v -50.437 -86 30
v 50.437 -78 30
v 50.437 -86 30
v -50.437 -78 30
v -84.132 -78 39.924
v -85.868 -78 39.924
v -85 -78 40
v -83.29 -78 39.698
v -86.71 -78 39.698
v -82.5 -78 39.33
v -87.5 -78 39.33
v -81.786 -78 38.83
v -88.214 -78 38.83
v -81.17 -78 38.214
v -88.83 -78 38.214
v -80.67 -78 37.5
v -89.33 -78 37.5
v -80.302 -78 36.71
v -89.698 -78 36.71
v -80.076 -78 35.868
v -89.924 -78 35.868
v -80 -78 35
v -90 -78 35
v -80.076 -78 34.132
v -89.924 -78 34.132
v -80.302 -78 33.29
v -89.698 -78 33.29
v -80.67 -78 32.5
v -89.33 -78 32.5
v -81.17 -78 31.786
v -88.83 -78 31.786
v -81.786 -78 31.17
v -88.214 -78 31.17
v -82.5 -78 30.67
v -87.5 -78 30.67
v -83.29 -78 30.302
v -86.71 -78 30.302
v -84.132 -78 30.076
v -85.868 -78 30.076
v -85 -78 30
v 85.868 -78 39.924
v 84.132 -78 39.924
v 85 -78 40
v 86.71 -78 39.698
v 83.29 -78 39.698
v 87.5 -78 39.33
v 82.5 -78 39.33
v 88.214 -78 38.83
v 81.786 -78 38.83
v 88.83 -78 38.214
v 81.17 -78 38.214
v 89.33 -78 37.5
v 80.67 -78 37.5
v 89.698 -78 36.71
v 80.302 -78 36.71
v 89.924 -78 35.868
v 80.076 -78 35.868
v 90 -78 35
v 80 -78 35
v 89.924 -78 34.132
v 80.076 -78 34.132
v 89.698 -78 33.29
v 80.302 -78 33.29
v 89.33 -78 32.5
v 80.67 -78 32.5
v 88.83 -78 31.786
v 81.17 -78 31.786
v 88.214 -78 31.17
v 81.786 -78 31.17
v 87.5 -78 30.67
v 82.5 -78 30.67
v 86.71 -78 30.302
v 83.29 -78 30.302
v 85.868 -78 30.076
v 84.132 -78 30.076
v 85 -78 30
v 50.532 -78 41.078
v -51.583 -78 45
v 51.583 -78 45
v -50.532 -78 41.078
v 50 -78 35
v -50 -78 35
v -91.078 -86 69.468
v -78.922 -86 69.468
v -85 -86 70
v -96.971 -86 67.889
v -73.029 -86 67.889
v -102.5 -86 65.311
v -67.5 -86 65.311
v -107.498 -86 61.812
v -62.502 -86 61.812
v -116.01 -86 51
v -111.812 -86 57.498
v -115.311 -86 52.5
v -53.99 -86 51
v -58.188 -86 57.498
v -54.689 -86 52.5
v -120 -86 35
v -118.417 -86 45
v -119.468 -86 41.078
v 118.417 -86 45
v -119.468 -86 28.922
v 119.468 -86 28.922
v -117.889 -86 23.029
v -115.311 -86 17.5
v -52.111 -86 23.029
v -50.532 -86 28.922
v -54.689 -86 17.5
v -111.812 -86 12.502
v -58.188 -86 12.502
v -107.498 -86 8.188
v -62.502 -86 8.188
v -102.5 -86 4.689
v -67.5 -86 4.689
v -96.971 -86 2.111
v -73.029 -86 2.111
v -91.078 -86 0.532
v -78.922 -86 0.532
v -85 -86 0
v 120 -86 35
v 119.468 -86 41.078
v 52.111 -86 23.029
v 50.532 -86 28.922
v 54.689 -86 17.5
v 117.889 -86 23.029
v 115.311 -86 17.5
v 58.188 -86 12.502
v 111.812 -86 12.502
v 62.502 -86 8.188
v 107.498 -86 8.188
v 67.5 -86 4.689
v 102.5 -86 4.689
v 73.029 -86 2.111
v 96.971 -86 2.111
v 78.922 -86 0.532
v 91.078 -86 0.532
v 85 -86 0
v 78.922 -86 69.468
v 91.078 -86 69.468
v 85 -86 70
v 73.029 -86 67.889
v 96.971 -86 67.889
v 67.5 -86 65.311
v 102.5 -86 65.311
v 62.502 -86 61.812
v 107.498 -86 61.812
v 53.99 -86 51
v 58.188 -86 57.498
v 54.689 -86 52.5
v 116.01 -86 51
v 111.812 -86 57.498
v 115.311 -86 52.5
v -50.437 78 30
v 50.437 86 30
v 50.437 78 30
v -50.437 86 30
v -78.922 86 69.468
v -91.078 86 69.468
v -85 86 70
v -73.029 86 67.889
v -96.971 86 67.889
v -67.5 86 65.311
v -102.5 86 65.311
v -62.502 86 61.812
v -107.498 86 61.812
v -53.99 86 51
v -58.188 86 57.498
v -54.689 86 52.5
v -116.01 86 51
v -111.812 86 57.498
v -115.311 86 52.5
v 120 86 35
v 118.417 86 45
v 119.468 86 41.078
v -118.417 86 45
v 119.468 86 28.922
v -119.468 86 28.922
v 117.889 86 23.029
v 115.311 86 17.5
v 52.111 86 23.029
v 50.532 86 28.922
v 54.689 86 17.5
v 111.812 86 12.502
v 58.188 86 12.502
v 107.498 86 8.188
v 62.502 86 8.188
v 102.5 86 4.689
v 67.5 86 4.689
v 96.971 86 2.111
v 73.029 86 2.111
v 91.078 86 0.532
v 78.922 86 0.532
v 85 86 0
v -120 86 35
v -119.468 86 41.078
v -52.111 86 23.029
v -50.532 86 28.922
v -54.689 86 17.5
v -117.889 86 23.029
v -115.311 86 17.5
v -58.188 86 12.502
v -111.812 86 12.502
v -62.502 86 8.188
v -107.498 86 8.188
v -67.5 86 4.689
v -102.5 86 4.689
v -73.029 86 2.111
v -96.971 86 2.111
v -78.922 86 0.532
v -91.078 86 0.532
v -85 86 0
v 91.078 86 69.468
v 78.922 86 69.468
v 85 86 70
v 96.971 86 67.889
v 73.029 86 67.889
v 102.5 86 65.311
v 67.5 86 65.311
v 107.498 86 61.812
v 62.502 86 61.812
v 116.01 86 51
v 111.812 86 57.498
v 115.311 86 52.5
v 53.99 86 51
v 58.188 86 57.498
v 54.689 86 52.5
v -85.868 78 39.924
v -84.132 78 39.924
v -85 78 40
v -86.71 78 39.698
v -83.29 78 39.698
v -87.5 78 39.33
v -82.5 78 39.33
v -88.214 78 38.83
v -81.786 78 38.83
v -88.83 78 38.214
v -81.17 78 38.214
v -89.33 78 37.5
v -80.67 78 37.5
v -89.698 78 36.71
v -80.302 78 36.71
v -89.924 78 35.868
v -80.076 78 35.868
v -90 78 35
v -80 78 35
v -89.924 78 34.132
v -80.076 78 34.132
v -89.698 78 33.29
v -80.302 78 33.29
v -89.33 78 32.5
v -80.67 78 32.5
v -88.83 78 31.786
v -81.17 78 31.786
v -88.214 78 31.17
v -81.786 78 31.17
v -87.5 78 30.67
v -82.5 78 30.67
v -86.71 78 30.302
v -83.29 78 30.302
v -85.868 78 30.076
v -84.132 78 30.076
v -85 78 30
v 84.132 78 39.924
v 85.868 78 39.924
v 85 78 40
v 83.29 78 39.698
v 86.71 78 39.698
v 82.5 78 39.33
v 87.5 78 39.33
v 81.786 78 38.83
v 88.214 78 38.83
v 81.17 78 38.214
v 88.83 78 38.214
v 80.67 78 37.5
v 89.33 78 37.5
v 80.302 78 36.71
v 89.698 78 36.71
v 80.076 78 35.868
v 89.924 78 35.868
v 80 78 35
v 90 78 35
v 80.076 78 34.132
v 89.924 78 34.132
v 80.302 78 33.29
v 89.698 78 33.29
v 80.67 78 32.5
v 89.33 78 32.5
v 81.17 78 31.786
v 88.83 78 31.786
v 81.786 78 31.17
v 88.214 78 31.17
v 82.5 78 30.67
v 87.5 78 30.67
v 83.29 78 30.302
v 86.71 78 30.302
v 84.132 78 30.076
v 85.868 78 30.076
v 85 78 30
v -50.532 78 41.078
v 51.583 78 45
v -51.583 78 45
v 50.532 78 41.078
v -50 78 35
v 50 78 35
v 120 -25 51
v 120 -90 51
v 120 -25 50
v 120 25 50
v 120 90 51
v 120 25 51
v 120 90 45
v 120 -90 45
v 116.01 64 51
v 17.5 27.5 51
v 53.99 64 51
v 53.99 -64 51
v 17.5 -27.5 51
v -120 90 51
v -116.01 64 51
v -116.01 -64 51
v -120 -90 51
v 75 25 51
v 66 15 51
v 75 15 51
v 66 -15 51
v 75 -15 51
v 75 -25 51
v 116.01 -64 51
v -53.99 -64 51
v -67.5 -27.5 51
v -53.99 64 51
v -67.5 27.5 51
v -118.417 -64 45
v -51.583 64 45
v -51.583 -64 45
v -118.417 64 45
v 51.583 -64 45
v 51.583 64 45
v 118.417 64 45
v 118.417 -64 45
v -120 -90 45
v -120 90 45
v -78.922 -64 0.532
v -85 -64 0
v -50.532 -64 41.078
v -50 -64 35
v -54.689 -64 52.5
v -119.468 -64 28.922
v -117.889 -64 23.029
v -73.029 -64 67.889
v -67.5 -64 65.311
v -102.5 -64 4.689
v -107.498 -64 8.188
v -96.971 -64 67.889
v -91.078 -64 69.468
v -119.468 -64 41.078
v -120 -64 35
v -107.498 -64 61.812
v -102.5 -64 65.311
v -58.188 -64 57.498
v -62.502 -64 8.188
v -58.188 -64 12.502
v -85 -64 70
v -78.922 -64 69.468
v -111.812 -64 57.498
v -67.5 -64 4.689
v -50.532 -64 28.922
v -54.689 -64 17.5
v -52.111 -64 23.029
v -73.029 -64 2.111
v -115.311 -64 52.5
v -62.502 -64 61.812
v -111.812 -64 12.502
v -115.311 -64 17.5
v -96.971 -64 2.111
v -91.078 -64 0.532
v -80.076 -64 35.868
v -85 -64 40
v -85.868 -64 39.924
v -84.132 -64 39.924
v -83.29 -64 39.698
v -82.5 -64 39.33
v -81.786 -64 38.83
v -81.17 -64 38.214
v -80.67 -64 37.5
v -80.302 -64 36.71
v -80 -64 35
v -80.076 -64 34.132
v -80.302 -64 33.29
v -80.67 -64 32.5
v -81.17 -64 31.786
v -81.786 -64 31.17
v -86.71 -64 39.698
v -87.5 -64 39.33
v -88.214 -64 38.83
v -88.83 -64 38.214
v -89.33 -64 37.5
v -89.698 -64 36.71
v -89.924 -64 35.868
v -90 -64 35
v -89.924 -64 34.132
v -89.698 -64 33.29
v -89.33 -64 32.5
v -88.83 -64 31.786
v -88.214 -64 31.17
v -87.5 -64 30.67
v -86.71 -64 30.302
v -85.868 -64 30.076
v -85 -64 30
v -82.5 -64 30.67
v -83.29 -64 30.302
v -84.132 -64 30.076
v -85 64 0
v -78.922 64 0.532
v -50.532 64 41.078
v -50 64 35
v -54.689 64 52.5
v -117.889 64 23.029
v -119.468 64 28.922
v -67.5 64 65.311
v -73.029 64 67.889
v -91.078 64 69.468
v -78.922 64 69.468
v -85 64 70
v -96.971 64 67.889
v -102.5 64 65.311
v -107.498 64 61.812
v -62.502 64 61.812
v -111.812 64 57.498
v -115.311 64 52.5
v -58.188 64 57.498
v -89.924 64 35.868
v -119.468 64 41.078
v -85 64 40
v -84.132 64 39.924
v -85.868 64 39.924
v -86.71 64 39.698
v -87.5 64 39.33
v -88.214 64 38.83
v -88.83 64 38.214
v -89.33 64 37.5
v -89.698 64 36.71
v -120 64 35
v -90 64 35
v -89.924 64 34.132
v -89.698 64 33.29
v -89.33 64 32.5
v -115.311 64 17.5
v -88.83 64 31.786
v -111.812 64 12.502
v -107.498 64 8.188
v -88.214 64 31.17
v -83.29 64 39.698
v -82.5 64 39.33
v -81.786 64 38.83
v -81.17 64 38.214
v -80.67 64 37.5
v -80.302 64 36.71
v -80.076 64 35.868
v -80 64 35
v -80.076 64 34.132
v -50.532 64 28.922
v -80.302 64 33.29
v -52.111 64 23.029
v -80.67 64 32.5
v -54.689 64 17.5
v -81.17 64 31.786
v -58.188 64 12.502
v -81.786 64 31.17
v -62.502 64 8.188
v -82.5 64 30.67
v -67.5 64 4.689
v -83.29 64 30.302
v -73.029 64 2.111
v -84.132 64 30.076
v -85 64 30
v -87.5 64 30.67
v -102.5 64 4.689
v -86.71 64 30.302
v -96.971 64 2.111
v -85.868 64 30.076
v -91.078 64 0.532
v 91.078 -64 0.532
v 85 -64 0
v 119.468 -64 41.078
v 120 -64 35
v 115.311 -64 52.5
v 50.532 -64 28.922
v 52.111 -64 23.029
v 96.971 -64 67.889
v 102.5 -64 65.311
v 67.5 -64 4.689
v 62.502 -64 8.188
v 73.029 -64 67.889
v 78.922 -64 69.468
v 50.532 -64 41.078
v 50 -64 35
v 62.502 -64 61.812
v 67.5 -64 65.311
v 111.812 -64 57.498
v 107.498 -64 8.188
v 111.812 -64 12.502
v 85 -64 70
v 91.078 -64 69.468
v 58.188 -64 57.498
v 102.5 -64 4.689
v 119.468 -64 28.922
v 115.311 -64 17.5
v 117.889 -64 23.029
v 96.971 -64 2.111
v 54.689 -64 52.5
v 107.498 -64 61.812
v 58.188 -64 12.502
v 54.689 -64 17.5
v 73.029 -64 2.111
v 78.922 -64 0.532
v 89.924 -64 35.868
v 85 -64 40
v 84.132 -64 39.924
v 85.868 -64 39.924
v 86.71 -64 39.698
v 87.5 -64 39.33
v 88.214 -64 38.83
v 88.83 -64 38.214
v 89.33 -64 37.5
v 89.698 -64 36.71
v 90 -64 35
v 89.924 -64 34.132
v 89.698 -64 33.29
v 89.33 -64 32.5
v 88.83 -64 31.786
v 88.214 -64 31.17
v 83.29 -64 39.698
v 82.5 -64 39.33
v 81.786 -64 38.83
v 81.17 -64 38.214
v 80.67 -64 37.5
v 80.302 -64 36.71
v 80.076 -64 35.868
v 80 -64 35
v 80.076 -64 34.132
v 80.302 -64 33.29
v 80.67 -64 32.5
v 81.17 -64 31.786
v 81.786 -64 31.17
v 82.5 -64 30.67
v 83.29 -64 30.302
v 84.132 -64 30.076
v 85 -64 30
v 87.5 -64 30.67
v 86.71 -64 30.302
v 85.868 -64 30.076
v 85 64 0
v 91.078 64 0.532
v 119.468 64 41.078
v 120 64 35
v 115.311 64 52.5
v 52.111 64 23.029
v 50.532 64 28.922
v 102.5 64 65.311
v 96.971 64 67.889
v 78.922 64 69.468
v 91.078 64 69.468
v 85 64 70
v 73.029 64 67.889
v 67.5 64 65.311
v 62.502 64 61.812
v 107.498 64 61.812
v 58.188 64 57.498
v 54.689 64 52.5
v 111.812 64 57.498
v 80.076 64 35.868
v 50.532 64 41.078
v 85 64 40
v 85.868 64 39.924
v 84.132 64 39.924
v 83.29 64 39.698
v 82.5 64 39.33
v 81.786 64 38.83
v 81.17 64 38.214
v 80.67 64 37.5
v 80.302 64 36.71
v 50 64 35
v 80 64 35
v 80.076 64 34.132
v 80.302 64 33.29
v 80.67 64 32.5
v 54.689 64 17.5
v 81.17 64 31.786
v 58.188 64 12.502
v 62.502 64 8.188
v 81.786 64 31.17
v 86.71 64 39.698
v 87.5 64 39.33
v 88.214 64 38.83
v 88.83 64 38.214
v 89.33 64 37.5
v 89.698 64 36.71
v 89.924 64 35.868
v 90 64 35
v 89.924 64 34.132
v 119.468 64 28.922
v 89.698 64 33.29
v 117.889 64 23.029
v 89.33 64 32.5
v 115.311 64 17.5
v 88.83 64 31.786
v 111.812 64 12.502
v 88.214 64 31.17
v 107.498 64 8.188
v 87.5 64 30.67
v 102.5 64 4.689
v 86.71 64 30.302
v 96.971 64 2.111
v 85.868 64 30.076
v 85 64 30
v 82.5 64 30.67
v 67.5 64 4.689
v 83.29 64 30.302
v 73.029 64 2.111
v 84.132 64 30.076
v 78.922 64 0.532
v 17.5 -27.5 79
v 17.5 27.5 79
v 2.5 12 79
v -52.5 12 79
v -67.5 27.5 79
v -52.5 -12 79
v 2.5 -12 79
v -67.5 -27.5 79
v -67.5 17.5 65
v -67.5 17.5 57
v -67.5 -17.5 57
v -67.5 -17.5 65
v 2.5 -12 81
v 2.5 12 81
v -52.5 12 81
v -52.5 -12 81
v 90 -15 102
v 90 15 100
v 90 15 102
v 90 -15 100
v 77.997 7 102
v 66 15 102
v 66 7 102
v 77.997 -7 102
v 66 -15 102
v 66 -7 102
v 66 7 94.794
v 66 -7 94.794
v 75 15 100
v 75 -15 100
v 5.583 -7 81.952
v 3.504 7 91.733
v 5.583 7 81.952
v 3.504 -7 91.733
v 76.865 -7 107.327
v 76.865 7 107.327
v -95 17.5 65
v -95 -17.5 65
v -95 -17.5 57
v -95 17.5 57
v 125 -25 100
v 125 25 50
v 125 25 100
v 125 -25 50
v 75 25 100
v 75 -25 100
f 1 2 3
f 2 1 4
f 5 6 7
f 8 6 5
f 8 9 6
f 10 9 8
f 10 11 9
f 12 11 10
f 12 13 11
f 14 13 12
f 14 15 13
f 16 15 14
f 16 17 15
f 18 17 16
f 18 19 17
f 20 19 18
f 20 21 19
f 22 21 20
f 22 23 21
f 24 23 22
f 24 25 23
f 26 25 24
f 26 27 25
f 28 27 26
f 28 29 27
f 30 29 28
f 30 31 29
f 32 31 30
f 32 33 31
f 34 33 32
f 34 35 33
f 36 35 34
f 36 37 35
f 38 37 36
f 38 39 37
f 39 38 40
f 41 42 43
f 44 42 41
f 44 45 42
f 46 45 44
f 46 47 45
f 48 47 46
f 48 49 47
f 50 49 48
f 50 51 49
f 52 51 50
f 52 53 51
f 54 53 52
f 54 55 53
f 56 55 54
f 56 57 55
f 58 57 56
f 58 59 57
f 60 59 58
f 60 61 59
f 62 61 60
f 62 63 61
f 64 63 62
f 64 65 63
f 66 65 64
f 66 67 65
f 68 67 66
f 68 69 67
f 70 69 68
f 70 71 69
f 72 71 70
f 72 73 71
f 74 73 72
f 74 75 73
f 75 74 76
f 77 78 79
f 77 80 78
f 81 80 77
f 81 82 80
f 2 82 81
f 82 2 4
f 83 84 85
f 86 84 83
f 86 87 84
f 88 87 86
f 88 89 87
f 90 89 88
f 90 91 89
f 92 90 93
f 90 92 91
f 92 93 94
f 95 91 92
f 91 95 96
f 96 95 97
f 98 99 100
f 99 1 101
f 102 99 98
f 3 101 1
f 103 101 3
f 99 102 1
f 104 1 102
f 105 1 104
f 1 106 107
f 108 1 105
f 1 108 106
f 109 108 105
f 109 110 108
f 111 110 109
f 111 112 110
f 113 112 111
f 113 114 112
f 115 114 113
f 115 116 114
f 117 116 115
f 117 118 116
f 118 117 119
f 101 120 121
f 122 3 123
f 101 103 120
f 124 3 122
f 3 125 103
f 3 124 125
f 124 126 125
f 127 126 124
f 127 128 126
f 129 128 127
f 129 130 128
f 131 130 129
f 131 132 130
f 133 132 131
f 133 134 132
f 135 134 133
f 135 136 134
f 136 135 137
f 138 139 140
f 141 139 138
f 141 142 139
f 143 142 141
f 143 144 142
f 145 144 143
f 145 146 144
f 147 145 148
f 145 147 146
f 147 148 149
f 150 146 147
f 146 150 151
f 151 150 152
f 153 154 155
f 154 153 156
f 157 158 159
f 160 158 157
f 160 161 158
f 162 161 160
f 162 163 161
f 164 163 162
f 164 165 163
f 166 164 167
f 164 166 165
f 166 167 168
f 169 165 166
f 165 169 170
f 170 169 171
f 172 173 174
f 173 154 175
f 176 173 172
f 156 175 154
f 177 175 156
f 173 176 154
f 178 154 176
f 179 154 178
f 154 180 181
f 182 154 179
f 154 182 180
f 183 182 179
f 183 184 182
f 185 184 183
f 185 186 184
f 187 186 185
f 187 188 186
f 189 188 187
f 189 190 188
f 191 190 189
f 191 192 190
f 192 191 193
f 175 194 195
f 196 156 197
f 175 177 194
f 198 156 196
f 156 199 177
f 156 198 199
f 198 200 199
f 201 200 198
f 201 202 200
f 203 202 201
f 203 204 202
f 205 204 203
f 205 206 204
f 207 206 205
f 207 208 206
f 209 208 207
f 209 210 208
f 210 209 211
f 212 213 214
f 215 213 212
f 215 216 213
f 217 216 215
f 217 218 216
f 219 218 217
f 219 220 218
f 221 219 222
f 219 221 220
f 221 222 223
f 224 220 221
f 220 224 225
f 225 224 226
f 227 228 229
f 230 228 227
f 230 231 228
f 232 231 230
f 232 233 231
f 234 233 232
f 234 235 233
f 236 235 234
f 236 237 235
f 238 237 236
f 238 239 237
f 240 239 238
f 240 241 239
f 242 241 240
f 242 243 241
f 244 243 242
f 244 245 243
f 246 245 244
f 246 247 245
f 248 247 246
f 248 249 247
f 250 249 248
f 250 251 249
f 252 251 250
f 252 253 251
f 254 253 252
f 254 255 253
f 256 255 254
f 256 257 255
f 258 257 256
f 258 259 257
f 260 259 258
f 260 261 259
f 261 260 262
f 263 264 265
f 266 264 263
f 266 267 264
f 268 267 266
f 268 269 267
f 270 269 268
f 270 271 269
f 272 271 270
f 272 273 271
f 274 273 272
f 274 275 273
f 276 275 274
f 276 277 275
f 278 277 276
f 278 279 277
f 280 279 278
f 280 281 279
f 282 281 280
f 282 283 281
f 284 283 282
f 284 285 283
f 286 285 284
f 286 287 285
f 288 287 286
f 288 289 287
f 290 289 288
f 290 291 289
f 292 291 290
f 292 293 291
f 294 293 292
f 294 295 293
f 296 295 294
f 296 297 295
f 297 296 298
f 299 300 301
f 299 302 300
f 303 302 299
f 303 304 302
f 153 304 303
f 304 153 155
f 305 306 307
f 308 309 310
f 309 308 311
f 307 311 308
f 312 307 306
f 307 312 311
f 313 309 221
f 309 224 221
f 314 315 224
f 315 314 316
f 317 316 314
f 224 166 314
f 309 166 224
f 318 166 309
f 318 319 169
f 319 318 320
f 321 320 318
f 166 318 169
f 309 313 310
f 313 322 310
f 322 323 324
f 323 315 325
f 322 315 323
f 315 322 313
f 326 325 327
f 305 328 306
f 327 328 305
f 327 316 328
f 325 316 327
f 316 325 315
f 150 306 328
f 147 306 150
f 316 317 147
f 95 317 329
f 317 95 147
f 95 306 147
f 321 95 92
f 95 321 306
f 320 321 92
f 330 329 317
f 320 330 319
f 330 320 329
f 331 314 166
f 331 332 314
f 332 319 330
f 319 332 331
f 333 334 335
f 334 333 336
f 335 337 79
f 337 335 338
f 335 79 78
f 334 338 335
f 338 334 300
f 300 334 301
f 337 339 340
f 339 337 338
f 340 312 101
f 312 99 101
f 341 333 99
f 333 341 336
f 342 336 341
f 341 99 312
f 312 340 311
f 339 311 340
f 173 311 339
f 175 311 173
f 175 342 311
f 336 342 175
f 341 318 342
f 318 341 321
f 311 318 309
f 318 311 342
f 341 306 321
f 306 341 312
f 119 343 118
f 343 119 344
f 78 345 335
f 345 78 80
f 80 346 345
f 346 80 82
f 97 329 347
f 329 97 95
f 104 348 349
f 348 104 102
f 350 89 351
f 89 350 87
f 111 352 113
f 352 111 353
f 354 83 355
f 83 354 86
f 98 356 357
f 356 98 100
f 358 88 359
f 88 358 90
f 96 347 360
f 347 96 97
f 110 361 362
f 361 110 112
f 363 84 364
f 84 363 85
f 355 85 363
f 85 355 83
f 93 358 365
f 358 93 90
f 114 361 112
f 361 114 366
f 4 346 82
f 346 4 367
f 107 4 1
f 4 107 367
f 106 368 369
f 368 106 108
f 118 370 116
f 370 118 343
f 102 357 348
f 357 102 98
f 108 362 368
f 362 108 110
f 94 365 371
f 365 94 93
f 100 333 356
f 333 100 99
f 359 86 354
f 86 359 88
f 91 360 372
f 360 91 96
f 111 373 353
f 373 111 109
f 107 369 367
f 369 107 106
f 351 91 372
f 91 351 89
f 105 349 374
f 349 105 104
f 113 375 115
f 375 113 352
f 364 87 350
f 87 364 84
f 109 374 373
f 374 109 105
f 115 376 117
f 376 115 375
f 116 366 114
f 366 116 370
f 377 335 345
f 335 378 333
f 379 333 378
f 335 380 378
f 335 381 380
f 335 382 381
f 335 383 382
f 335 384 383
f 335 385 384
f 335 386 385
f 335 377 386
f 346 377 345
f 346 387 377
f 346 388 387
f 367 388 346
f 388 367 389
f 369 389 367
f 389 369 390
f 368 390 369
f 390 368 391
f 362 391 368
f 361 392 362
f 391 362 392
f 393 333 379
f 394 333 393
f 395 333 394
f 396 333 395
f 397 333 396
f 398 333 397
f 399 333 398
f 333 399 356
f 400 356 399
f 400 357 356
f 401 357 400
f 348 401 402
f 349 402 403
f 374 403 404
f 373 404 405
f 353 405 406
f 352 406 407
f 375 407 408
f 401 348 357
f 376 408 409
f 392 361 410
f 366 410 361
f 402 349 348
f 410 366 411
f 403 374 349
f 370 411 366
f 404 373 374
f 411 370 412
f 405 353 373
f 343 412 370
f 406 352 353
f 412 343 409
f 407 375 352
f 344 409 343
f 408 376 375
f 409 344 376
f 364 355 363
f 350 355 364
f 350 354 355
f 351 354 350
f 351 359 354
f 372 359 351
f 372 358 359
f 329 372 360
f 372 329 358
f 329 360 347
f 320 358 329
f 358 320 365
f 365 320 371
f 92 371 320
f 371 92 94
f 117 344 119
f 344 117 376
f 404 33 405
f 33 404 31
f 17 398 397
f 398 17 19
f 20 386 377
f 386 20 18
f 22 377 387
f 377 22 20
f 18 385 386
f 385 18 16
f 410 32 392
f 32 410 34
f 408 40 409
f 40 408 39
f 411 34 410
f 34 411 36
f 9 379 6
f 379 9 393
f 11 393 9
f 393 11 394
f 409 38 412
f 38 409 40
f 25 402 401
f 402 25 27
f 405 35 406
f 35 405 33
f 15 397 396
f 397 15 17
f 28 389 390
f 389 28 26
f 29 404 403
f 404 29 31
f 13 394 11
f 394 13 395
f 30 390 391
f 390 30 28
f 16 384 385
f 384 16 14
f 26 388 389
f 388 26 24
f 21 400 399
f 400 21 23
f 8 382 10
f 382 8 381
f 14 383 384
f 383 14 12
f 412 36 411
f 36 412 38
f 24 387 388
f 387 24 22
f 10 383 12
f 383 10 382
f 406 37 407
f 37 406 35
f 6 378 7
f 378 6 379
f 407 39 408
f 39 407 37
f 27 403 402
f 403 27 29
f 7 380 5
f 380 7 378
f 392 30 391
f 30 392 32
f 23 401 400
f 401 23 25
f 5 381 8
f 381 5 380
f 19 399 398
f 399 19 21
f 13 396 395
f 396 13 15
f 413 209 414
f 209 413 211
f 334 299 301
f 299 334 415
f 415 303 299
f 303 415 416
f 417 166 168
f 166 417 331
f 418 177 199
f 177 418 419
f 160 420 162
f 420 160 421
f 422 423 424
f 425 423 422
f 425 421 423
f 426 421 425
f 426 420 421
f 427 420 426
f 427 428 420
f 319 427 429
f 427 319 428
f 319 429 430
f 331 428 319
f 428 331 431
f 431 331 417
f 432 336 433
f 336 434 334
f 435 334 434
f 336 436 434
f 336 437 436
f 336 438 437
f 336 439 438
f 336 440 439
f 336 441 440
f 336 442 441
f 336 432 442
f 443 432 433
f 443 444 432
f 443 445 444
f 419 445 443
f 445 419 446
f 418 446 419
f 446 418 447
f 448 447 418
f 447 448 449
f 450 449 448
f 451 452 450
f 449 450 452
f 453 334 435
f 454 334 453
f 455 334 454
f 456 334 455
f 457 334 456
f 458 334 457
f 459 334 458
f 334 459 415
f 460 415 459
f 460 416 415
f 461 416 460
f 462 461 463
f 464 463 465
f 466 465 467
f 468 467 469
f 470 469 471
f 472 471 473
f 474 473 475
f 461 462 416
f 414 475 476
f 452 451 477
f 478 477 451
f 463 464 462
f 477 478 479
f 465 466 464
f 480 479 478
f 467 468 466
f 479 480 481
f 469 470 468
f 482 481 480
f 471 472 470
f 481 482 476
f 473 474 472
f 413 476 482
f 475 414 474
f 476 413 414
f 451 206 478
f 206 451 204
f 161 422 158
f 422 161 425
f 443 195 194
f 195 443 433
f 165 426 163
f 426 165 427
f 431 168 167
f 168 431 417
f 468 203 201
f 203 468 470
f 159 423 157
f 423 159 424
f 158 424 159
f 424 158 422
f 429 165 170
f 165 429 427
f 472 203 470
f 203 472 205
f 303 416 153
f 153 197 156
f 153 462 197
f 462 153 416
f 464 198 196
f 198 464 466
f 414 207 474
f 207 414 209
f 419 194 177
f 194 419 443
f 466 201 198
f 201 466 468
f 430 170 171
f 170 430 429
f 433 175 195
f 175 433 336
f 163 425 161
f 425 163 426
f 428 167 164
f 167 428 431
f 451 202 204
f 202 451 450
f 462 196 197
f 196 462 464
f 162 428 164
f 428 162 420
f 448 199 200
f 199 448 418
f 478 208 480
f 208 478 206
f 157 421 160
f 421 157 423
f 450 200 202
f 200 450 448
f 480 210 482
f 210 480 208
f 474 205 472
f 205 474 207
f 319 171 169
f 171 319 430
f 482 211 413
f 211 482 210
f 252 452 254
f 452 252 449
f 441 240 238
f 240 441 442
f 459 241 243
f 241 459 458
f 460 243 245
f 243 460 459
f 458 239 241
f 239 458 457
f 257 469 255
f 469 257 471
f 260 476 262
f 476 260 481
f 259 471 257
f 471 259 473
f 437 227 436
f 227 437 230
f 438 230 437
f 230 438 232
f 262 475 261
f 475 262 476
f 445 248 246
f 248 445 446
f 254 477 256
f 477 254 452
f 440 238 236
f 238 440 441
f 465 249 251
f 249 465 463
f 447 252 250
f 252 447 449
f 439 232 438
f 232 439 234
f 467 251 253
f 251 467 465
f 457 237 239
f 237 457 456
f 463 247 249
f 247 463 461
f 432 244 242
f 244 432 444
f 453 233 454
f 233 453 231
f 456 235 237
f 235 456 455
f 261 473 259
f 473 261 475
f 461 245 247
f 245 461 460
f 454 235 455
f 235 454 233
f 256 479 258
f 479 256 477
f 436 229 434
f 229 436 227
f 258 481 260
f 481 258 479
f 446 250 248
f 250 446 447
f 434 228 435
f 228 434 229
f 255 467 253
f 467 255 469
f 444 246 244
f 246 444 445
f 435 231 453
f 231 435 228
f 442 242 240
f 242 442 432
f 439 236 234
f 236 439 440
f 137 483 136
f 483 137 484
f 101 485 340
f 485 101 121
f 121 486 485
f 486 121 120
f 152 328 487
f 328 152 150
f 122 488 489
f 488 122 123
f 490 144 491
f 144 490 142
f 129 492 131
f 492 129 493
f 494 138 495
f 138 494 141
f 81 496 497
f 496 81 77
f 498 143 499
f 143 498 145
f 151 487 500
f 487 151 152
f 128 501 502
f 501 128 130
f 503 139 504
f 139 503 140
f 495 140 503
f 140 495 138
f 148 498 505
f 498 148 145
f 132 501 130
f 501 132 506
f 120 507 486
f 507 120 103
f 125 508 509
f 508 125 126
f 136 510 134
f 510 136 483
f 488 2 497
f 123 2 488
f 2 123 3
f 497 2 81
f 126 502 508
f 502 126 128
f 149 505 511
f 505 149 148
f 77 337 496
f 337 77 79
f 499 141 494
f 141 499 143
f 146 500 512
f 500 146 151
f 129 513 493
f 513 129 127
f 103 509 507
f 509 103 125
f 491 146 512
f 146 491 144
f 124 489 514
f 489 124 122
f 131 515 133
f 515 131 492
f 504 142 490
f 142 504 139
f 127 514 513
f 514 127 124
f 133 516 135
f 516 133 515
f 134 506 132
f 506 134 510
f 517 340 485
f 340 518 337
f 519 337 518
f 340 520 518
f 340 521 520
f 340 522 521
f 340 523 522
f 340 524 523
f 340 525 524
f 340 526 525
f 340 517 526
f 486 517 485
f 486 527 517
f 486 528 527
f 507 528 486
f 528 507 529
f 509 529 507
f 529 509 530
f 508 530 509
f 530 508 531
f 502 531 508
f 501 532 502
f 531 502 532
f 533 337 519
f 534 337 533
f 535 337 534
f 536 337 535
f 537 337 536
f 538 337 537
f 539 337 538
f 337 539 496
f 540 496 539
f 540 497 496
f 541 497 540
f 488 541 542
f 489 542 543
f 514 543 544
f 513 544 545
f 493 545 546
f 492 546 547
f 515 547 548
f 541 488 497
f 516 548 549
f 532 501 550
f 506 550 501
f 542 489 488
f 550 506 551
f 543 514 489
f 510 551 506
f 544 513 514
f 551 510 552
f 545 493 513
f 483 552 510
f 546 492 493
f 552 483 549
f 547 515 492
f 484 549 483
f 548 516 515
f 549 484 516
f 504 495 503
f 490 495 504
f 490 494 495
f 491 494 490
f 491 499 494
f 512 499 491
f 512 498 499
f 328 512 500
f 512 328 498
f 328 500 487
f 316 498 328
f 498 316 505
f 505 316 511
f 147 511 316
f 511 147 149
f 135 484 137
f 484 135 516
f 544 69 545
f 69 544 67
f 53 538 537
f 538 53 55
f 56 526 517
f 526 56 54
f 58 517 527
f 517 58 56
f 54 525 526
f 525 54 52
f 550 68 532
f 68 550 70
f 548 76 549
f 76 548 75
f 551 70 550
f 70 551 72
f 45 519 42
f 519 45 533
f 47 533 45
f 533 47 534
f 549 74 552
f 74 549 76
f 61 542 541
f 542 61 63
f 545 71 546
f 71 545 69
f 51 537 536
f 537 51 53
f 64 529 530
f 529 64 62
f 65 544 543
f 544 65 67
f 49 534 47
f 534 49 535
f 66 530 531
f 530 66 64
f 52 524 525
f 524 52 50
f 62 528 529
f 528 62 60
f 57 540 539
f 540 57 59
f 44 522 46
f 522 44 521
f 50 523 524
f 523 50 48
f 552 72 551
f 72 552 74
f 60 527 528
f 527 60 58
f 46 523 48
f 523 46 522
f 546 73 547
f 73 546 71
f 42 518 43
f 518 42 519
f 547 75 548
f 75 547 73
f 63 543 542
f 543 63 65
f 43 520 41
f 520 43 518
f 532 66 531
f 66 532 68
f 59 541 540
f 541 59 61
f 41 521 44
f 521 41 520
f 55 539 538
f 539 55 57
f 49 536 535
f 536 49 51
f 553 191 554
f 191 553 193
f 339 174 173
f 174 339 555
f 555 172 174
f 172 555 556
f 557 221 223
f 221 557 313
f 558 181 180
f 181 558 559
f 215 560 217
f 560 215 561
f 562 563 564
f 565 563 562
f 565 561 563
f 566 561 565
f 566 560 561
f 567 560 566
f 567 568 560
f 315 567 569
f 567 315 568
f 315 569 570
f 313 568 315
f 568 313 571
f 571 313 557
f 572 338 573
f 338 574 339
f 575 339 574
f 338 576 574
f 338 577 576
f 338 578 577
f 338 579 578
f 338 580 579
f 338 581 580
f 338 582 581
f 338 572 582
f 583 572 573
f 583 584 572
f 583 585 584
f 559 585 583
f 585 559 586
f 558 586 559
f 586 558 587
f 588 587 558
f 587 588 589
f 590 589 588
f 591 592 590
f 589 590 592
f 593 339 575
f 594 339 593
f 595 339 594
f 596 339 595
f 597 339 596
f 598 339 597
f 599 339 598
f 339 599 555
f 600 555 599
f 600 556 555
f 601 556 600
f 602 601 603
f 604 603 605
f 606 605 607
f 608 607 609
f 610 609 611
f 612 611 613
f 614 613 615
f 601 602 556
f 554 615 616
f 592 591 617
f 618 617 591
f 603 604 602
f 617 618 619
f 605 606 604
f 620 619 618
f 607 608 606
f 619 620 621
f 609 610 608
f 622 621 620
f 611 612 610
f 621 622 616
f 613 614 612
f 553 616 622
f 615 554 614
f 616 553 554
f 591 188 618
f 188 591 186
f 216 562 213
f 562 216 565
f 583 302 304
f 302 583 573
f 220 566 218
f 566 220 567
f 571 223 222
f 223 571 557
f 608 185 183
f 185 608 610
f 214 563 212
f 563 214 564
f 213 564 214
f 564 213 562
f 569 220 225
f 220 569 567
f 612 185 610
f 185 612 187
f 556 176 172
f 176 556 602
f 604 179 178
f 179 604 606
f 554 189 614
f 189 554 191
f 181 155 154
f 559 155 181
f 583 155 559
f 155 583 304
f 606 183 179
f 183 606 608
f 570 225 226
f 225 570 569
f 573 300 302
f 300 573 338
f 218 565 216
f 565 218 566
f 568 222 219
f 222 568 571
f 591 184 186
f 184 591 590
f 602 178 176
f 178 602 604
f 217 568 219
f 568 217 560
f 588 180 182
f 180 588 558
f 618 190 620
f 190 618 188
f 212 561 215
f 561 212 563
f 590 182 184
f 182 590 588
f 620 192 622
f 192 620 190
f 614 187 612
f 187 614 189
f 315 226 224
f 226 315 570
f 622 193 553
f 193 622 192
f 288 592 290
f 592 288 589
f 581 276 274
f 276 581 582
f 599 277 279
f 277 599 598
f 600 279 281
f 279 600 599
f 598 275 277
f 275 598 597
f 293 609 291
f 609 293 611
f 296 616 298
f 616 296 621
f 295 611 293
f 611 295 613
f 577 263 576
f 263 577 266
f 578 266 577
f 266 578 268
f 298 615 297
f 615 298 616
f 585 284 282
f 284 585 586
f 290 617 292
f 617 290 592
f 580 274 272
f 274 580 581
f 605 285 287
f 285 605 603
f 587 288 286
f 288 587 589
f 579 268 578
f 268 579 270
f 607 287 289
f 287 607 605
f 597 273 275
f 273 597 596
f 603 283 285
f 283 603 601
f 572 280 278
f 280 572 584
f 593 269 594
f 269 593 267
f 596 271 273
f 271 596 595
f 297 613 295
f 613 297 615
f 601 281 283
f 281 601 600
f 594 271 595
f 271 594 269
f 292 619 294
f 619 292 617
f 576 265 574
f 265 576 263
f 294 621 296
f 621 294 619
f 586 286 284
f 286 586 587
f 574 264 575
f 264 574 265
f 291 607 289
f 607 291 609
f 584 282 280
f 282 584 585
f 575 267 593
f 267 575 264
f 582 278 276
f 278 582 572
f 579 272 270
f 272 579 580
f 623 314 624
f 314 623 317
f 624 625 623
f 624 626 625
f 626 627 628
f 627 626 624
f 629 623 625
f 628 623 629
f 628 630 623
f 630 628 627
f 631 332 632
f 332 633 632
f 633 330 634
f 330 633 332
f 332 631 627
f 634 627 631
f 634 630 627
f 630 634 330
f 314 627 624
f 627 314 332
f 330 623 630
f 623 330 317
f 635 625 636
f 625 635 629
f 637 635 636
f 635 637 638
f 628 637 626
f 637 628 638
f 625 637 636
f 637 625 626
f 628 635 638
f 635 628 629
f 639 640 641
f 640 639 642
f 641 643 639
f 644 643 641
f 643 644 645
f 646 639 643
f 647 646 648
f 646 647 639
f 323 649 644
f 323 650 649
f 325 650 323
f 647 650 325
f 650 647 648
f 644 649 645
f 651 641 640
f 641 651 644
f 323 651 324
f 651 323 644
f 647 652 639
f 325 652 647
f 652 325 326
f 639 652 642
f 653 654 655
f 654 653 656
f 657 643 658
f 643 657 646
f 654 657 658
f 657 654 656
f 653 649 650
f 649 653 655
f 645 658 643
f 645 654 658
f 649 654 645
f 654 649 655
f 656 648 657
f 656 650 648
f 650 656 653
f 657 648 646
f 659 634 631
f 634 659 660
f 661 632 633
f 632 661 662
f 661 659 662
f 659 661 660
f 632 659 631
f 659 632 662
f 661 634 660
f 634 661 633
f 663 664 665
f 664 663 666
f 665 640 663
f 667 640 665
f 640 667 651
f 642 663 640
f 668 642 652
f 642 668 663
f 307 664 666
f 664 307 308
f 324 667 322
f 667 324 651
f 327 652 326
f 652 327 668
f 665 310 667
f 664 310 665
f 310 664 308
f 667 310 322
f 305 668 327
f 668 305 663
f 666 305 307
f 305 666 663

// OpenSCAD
// RoboReach Challenge A - simple chassis concept
// Units are mm. Open in OpenSCAD. Use F5 preview / F6 render.
// Animate with $t from 0 to 1 to see a basic forward/gripper motion.
// This is a simplified model, not production-ready CAD.

$fn = 36;
t = $t; // OpenSCAD animation variable

chassis_L = 240;
chassis_W = 180;
plate_T = 6;
wheel_D = 70;
wheel_W = 22;
wheelbase = 170;
track = 150;

module wheel(x,y,z) {
    translate([x,y,z])
        rotate([90,0,0])
            difference() {
                cylinder(d=wheel_D,h=wheel_W,center=true);
                cylinder(d=10,h=wheel_W+1,center=true);
            }
}
module chassis() {
    color([0.20,0.25,0.30])
        translate([0,0,48])
            cube([chassis_L,chassis_W,plate_T],center=true);
    // simple side rails
    color([0.35,0.38,0.40])
        for (y=[-chassis_W/2+8,chassis_W/2-8])
            translate([0,y,39]) cube([chassis_L-15,8,18],center=true);
}
module battery() {
    color([0.16,0.16,0.18])
        translate([-25,0,65]) cube([85,55,28],center=true);
    color([0.85,0.25,0.12])
        translate([-25,0,80]) cube([55,24,2],center=true);
}
module electronics() {
    color([0.05,0.35,0.20])
        translate([-75,0,61]) cube([40,35,8],center=true);
}
module front_arm() {
    // pivot tower
    color([0.70,0.70,0.73])
        translate([78,0,76]) cube([24,30,52],center=true);
    // simple folded / slightly moving arm link
    rotate([0, -12-8*sin(360*t), 0])
        color([0.78,0.58,0.25])
            translate([60 + 52*t,0,84]) cube([75,14,10],center=true);
    // two fingers move inward/outward in animation
    for (s=[-1,1])
        color([0.85,0.70,0.42])
            translate([98 + 53*t, s*(14-4*sin(360*t)), 75])
                cube([36,7,12],center=true);
}
module cube_payload() {
    // Cube centre is 70 mm ahead of the chassis front edge (x=120).
    color([0.88,0.25,0.18])
        translate([100 + 90*t + 3*sin(360*t),0,75])
            cube([50,50,50],center=true);
}
module whole_bot() {
    chassis();
    for (x=[-wheelbase/2,wheelbase/2])
        for (y=[-track/2,track/2])
            wheel(x,y,35);
    battery();
    electronics();
    front_arm();
    cube_payload();
}
module exploded() {
    // Exploded view spacing along z, for presentation only.
    translate([0,0,0]) chassis();
    for (x=[-wheelbase/2,wheelbase/2])
        for (y=[-track/2,track/2])
            wheel(x,y,35+28);
    translate([0,0,28]) battery();
    translate([0,0,22]) electronics();
    translate([0,0,42]) front_arm();
    translate([190,0,100]) cube_payload();
}
if (is_undef(exploded_view)) whole_bot();
else exploded();
